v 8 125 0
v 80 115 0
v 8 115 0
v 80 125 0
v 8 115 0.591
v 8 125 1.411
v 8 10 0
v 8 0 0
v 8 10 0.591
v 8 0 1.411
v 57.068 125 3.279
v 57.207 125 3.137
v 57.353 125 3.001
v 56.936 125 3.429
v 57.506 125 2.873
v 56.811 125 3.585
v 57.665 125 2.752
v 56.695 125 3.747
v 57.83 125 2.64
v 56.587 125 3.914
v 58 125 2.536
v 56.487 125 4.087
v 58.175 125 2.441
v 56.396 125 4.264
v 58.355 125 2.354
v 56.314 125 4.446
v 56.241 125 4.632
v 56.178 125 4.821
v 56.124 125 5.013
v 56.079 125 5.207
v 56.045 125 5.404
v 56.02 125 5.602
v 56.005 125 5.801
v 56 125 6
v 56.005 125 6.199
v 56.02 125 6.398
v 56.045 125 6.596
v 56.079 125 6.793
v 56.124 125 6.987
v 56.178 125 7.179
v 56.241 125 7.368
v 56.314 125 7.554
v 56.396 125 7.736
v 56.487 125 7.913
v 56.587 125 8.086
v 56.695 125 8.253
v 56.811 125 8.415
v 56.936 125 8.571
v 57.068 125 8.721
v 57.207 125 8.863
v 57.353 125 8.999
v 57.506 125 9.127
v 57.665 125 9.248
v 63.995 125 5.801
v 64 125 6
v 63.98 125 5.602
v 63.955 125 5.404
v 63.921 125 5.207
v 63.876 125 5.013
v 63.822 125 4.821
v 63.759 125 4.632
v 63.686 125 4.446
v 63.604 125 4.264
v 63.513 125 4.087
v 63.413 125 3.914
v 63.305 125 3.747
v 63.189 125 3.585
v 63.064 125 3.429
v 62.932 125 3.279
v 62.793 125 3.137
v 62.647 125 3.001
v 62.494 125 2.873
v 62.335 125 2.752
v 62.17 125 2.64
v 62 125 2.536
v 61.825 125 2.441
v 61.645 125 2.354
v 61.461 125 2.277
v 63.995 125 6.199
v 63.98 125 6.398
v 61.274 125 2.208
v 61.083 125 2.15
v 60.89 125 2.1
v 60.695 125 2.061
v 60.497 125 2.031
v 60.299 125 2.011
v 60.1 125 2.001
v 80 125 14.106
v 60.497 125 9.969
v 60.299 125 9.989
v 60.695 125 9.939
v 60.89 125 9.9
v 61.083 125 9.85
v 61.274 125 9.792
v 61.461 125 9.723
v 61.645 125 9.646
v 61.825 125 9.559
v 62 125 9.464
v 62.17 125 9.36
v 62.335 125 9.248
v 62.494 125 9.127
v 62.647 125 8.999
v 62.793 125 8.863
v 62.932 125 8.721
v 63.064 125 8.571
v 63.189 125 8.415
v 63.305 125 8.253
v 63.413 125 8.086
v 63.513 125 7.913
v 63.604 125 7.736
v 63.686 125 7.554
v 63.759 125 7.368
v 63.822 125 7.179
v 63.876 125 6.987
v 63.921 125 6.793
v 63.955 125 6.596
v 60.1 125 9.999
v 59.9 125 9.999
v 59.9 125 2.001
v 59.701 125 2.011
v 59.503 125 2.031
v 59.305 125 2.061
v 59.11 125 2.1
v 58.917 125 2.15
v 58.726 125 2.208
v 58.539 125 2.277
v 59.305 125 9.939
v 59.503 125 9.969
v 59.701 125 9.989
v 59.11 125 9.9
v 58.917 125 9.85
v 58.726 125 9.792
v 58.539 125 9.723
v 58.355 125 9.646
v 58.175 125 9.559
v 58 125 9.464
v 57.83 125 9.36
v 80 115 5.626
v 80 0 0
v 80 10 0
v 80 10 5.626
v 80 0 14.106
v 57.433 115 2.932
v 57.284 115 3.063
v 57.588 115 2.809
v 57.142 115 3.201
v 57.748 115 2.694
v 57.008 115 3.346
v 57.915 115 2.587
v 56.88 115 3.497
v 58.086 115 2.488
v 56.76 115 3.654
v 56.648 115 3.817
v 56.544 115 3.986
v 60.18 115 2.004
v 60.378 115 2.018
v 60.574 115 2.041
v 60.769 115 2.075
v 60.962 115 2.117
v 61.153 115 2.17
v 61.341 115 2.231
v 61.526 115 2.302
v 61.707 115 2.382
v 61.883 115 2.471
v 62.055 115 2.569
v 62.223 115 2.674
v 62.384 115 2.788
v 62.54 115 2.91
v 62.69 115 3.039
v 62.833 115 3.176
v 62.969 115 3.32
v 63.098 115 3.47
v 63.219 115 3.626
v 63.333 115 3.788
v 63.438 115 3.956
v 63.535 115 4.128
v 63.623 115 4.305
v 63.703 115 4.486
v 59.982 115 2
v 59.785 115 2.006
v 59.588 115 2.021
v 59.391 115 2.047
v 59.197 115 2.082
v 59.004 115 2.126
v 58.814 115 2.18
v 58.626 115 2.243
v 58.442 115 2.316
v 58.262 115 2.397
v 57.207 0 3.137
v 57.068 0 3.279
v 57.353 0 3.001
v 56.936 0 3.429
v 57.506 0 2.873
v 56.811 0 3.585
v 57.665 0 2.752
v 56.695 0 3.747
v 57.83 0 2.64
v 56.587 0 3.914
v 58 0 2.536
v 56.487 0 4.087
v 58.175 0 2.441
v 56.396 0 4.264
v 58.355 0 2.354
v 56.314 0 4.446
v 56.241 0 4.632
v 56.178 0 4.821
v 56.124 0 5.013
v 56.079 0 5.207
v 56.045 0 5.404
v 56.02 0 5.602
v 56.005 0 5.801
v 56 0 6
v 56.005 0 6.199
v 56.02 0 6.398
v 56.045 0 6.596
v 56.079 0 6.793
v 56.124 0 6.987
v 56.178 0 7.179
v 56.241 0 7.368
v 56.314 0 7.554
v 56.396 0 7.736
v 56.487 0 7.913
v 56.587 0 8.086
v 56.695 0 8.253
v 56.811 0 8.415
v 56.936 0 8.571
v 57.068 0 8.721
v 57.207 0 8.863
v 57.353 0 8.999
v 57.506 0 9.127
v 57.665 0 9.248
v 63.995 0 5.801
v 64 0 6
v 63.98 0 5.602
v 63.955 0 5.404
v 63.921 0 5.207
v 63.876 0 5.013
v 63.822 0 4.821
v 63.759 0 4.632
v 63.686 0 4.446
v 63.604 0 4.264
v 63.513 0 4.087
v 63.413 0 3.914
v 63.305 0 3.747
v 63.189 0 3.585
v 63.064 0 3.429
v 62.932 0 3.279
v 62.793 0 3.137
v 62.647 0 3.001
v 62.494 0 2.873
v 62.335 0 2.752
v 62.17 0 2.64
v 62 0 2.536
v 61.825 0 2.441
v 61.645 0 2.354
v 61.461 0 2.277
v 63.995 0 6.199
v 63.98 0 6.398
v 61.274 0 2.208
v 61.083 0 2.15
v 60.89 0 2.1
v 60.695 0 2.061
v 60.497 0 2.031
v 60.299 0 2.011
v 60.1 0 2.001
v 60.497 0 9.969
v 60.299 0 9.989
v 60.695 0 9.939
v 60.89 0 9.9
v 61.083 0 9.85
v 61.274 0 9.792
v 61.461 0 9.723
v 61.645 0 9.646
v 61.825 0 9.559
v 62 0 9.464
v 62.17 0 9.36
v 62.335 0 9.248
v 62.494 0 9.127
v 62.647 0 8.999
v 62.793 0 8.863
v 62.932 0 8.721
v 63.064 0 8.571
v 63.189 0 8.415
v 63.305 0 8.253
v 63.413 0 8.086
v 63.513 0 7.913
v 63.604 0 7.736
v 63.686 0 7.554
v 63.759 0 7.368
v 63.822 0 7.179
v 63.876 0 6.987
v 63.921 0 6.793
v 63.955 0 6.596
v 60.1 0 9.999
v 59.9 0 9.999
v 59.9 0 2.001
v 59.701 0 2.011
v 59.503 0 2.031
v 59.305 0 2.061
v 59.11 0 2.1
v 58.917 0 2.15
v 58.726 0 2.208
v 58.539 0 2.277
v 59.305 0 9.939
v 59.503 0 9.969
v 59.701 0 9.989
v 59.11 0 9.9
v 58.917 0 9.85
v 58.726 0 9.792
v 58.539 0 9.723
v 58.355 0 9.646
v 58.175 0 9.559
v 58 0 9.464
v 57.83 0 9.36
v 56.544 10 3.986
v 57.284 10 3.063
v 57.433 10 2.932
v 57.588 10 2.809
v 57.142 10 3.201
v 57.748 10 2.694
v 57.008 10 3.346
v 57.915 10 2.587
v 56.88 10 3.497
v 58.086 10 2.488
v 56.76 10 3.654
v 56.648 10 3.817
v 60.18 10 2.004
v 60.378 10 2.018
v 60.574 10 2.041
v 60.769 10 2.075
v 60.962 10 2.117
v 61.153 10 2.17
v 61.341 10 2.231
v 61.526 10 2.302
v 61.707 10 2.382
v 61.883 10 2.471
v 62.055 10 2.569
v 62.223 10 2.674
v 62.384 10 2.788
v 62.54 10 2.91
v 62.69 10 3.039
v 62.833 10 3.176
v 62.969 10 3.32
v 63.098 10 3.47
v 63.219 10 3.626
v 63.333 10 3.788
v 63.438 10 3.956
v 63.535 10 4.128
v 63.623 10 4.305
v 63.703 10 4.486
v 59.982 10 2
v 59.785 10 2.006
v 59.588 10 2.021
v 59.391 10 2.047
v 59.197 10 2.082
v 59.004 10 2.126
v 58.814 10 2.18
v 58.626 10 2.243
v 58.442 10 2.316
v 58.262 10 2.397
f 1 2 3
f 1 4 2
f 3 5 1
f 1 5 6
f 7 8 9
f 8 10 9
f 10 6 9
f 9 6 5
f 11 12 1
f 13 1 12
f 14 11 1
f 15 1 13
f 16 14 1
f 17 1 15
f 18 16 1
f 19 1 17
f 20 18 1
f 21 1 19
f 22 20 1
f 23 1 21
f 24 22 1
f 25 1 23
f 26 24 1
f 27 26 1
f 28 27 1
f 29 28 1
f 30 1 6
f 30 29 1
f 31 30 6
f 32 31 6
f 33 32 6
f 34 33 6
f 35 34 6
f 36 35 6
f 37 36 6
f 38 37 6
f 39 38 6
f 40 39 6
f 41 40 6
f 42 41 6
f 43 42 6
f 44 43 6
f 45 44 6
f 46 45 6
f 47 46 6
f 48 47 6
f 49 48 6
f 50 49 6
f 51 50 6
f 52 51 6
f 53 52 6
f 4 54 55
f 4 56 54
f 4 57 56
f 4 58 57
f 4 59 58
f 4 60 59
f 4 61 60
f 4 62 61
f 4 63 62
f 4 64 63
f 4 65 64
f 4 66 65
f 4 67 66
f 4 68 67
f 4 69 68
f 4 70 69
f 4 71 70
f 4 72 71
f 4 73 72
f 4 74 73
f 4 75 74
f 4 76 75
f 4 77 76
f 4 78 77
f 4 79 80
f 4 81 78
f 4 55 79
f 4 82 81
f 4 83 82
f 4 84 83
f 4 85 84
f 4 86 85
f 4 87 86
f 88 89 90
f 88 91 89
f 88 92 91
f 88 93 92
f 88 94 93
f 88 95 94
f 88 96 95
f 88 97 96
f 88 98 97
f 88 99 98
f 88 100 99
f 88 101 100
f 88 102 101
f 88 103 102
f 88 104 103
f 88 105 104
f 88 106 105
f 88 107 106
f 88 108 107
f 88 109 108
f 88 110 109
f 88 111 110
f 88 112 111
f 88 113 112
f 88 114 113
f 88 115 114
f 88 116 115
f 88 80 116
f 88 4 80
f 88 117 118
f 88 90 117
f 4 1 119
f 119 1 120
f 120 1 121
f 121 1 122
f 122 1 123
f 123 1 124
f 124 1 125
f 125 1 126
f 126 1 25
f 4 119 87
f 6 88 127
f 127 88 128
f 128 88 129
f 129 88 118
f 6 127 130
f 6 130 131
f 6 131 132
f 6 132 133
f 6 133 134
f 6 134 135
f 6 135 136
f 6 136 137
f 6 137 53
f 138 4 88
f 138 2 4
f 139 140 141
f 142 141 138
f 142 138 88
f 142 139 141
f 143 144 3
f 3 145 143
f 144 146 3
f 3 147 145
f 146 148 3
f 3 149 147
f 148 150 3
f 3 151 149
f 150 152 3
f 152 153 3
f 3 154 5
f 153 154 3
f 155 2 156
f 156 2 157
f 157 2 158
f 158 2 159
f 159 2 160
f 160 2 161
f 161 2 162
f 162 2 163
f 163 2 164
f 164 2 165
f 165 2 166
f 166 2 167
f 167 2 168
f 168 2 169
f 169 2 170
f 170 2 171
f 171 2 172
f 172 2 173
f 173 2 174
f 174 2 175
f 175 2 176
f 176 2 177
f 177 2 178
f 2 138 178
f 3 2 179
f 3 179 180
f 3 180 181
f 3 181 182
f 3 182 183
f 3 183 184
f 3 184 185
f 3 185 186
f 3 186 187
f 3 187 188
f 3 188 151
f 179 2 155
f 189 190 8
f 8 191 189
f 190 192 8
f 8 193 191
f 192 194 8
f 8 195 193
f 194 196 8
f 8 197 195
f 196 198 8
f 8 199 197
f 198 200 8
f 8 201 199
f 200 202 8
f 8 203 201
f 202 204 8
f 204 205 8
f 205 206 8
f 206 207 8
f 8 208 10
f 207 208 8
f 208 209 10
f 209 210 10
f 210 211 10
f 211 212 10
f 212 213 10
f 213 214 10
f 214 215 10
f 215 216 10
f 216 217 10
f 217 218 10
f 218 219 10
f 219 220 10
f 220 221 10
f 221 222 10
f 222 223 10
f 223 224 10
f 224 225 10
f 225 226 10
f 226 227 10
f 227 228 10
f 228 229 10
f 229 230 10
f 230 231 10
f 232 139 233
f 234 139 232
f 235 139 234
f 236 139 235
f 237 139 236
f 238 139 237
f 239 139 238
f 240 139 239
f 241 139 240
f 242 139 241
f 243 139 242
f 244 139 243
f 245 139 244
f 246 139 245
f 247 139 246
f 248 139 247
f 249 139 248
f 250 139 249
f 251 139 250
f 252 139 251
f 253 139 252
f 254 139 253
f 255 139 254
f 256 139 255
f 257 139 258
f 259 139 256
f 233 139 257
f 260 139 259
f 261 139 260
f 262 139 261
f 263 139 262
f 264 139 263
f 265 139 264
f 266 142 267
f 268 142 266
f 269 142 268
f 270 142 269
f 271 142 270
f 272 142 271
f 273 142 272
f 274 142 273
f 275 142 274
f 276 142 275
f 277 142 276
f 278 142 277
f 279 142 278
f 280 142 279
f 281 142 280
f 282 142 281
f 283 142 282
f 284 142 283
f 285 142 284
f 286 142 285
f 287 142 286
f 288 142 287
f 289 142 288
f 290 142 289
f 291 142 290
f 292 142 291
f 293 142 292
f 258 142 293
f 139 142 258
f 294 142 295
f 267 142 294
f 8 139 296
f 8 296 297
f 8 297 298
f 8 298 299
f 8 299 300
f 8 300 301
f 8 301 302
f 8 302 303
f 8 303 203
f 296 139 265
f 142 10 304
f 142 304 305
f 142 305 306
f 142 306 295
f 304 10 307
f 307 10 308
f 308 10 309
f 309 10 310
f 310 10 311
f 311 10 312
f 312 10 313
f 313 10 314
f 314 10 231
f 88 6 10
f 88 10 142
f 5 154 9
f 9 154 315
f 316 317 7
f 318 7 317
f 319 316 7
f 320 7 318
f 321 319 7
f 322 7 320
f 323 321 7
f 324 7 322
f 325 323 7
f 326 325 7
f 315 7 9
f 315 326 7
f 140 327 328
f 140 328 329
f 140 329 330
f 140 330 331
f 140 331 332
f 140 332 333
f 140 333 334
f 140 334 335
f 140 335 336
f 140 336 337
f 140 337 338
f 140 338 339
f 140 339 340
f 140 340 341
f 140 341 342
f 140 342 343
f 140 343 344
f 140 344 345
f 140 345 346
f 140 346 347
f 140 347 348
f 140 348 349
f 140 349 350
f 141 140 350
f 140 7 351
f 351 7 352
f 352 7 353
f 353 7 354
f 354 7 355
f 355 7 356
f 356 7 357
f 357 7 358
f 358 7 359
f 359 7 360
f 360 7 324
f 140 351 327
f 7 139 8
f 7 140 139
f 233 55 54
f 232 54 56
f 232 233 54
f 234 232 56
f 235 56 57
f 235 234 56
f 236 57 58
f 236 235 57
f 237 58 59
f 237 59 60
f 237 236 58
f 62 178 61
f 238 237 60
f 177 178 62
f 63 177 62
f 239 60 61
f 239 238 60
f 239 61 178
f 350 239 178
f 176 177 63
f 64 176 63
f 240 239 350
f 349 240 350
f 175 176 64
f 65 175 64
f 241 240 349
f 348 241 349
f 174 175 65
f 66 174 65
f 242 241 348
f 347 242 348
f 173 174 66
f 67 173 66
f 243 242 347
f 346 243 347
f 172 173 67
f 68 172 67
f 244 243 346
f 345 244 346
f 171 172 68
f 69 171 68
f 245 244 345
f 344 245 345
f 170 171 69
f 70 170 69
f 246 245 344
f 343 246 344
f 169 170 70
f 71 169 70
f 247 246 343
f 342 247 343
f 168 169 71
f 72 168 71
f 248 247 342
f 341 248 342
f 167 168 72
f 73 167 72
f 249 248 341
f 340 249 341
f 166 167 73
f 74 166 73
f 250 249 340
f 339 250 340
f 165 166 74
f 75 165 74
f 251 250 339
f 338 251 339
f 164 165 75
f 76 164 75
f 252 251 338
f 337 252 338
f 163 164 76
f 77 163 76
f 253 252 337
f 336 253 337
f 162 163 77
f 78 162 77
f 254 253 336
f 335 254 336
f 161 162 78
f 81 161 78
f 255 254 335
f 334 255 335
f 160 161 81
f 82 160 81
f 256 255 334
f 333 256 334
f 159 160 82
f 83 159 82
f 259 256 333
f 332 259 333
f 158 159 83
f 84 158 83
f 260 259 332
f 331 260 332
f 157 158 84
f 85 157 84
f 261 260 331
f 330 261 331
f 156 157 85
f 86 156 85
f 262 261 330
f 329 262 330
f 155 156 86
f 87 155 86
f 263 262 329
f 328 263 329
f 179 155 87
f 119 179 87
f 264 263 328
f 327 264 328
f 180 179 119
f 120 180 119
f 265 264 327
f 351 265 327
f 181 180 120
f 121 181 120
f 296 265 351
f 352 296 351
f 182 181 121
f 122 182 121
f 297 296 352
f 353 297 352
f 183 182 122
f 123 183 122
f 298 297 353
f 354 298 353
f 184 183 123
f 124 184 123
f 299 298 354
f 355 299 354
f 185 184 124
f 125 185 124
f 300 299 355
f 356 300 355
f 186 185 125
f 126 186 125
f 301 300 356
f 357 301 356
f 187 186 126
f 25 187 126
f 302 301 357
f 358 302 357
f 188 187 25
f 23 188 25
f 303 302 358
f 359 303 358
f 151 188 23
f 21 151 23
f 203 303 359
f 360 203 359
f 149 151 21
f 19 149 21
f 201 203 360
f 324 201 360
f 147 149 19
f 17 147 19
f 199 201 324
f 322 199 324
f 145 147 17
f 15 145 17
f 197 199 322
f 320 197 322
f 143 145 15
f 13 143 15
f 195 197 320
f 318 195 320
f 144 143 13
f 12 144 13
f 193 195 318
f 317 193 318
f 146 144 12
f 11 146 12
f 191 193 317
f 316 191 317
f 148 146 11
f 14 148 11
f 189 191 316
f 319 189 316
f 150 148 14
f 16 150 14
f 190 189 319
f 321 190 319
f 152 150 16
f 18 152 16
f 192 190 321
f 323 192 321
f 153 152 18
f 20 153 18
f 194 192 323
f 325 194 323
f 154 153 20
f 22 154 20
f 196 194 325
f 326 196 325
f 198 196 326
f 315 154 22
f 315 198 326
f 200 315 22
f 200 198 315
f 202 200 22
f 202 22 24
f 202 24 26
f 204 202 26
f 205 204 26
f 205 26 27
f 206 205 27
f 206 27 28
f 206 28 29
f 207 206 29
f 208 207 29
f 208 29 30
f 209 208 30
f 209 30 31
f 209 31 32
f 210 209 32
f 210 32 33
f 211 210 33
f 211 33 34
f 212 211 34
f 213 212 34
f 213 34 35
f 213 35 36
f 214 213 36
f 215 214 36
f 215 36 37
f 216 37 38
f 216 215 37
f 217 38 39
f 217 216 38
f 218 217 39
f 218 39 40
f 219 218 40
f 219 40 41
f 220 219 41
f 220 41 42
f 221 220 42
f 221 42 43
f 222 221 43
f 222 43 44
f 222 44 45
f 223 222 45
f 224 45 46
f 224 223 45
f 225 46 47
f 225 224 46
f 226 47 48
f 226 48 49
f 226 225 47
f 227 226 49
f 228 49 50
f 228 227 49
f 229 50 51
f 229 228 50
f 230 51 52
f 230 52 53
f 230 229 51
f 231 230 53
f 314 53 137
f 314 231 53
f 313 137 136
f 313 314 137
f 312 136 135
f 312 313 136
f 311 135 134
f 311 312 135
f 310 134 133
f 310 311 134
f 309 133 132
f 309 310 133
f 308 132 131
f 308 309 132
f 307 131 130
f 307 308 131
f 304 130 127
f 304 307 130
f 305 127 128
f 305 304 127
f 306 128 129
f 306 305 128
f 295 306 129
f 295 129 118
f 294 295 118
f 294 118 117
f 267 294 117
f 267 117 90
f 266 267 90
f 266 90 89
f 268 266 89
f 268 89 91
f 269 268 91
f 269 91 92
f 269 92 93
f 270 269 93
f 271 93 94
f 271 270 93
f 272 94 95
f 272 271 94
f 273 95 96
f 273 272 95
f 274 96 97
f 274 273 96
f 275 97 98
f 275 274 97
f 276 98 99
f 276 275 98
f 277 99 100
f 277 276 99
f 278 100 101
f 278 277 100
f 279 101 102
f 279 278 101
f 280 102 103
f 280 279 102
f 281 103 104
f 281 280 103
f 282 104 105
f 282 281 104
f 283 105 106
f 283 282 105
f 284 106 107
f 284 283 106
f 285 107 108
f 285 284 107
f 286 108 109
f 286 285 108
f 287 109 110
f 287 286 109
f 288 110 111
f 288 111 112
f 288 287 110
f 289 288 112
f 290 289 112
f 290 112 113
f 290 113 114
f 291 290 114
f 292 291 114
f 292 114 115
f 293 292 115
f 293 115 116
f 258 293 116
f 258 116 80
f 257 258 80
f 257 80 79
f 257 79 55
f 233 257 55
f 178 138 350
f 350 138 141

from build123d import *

# Parameters (mm, degrees)
CYLINDER_R             = 4
CYLINDER_DEPTH         = 125
BOX003_W               = 8
BOX003_H               = 125
BOX003_DEPTH           = 2
BOX002_W               = 90
BOX002_H               = 125
BOX002_DEPTH           = 50
BOX002_PLACEMENT_ANGLE = 10
BOX001_W               = 85
BOX001_H               = 105
BOX001_DEPTH           = 13
BOX001_PLACEMENT_ANGLE = 356
BOX_W                  = 80
BOX_H                  = 125
BOX_DEPTH              = 50


with BuildPart() as mount_hole:
    # Cylinder → Cylinder (new body)
    with BuildSketch(Plane(origin=(60, 0, 6), x_dir=(1, 0, 0), z_dir=(0, 1, 0))):
        Circle(CYLINDER_R)
    extrude(amount=CYLINDER_DEPTH)


with BuildPart() as edge_remove:
    # Box003 → Box003 (new body)
    with BuildSketch(Plane.XY):
        with Locations((4, 62.5)):
            Rectangle(BOX003_W, BOX003_H)
    extrude(amount=BOX003_DEPTH)


with BuildPart() as guide_cutout:
    # Box002 → Box002 (new body)
    with BuildSketch(Plane.XY):
        with Locations((45, 62.5)):
            Rectangle(BOX002_W, BOX002_H)
    extrude(amount=BOX002_DEPTH)


with BuildPart() as guide_cutout_1:
    # Box002 placement: moved
    add(guide_cutout.part.rotate(Axis((0, 0, 0), (0, -1, 0)), BOX002_PLACEMENT_ANGLE))


with BuildPart() as belt_cutout:
    # Box001 → Box001 (new body)
    with BuildSketch(Plane.XY):
        with Locations((42.5, 52.5)):
            Rectangle(BOX001_W, BOX001_H)
    extrude(amount=BOX001_DEPTH)


with BuildPart() as belt_cutout_1:
    # Box001 placement: moved
    add(belt_cutout.part.moved(Location((0, 10, -13))).rotate(Axis((0, 10, -13), (0, 1, 0)), BOX001_PLACEMENT_ANGLE))


with BuildPart() as cut003:
    # Box → Box (new body)
    with BuildSketch(Plane.XY):
        with Locations((40, 62.5)):
            Rectangle(BOX_W, BOX_H)
    extrude(amount=BOX_DEPTH)

    # Cut: cut belt_cutout
    add(belt_cutout_1.part, mode=Mode.SUBTRACT)

    # Cut001: cut guide_cutout
    add(guide_cutout_1.part, mode=Mode.SUBTRACT)

    # Cut002: cut edge_remove
    add(edge_remove.part, mode=Mode.SUBTRACT)

    # Cut003: cut mount_hole
    add(mount_hole.part, mode=Mode.SUBTRACT)


solid = cut003.part
